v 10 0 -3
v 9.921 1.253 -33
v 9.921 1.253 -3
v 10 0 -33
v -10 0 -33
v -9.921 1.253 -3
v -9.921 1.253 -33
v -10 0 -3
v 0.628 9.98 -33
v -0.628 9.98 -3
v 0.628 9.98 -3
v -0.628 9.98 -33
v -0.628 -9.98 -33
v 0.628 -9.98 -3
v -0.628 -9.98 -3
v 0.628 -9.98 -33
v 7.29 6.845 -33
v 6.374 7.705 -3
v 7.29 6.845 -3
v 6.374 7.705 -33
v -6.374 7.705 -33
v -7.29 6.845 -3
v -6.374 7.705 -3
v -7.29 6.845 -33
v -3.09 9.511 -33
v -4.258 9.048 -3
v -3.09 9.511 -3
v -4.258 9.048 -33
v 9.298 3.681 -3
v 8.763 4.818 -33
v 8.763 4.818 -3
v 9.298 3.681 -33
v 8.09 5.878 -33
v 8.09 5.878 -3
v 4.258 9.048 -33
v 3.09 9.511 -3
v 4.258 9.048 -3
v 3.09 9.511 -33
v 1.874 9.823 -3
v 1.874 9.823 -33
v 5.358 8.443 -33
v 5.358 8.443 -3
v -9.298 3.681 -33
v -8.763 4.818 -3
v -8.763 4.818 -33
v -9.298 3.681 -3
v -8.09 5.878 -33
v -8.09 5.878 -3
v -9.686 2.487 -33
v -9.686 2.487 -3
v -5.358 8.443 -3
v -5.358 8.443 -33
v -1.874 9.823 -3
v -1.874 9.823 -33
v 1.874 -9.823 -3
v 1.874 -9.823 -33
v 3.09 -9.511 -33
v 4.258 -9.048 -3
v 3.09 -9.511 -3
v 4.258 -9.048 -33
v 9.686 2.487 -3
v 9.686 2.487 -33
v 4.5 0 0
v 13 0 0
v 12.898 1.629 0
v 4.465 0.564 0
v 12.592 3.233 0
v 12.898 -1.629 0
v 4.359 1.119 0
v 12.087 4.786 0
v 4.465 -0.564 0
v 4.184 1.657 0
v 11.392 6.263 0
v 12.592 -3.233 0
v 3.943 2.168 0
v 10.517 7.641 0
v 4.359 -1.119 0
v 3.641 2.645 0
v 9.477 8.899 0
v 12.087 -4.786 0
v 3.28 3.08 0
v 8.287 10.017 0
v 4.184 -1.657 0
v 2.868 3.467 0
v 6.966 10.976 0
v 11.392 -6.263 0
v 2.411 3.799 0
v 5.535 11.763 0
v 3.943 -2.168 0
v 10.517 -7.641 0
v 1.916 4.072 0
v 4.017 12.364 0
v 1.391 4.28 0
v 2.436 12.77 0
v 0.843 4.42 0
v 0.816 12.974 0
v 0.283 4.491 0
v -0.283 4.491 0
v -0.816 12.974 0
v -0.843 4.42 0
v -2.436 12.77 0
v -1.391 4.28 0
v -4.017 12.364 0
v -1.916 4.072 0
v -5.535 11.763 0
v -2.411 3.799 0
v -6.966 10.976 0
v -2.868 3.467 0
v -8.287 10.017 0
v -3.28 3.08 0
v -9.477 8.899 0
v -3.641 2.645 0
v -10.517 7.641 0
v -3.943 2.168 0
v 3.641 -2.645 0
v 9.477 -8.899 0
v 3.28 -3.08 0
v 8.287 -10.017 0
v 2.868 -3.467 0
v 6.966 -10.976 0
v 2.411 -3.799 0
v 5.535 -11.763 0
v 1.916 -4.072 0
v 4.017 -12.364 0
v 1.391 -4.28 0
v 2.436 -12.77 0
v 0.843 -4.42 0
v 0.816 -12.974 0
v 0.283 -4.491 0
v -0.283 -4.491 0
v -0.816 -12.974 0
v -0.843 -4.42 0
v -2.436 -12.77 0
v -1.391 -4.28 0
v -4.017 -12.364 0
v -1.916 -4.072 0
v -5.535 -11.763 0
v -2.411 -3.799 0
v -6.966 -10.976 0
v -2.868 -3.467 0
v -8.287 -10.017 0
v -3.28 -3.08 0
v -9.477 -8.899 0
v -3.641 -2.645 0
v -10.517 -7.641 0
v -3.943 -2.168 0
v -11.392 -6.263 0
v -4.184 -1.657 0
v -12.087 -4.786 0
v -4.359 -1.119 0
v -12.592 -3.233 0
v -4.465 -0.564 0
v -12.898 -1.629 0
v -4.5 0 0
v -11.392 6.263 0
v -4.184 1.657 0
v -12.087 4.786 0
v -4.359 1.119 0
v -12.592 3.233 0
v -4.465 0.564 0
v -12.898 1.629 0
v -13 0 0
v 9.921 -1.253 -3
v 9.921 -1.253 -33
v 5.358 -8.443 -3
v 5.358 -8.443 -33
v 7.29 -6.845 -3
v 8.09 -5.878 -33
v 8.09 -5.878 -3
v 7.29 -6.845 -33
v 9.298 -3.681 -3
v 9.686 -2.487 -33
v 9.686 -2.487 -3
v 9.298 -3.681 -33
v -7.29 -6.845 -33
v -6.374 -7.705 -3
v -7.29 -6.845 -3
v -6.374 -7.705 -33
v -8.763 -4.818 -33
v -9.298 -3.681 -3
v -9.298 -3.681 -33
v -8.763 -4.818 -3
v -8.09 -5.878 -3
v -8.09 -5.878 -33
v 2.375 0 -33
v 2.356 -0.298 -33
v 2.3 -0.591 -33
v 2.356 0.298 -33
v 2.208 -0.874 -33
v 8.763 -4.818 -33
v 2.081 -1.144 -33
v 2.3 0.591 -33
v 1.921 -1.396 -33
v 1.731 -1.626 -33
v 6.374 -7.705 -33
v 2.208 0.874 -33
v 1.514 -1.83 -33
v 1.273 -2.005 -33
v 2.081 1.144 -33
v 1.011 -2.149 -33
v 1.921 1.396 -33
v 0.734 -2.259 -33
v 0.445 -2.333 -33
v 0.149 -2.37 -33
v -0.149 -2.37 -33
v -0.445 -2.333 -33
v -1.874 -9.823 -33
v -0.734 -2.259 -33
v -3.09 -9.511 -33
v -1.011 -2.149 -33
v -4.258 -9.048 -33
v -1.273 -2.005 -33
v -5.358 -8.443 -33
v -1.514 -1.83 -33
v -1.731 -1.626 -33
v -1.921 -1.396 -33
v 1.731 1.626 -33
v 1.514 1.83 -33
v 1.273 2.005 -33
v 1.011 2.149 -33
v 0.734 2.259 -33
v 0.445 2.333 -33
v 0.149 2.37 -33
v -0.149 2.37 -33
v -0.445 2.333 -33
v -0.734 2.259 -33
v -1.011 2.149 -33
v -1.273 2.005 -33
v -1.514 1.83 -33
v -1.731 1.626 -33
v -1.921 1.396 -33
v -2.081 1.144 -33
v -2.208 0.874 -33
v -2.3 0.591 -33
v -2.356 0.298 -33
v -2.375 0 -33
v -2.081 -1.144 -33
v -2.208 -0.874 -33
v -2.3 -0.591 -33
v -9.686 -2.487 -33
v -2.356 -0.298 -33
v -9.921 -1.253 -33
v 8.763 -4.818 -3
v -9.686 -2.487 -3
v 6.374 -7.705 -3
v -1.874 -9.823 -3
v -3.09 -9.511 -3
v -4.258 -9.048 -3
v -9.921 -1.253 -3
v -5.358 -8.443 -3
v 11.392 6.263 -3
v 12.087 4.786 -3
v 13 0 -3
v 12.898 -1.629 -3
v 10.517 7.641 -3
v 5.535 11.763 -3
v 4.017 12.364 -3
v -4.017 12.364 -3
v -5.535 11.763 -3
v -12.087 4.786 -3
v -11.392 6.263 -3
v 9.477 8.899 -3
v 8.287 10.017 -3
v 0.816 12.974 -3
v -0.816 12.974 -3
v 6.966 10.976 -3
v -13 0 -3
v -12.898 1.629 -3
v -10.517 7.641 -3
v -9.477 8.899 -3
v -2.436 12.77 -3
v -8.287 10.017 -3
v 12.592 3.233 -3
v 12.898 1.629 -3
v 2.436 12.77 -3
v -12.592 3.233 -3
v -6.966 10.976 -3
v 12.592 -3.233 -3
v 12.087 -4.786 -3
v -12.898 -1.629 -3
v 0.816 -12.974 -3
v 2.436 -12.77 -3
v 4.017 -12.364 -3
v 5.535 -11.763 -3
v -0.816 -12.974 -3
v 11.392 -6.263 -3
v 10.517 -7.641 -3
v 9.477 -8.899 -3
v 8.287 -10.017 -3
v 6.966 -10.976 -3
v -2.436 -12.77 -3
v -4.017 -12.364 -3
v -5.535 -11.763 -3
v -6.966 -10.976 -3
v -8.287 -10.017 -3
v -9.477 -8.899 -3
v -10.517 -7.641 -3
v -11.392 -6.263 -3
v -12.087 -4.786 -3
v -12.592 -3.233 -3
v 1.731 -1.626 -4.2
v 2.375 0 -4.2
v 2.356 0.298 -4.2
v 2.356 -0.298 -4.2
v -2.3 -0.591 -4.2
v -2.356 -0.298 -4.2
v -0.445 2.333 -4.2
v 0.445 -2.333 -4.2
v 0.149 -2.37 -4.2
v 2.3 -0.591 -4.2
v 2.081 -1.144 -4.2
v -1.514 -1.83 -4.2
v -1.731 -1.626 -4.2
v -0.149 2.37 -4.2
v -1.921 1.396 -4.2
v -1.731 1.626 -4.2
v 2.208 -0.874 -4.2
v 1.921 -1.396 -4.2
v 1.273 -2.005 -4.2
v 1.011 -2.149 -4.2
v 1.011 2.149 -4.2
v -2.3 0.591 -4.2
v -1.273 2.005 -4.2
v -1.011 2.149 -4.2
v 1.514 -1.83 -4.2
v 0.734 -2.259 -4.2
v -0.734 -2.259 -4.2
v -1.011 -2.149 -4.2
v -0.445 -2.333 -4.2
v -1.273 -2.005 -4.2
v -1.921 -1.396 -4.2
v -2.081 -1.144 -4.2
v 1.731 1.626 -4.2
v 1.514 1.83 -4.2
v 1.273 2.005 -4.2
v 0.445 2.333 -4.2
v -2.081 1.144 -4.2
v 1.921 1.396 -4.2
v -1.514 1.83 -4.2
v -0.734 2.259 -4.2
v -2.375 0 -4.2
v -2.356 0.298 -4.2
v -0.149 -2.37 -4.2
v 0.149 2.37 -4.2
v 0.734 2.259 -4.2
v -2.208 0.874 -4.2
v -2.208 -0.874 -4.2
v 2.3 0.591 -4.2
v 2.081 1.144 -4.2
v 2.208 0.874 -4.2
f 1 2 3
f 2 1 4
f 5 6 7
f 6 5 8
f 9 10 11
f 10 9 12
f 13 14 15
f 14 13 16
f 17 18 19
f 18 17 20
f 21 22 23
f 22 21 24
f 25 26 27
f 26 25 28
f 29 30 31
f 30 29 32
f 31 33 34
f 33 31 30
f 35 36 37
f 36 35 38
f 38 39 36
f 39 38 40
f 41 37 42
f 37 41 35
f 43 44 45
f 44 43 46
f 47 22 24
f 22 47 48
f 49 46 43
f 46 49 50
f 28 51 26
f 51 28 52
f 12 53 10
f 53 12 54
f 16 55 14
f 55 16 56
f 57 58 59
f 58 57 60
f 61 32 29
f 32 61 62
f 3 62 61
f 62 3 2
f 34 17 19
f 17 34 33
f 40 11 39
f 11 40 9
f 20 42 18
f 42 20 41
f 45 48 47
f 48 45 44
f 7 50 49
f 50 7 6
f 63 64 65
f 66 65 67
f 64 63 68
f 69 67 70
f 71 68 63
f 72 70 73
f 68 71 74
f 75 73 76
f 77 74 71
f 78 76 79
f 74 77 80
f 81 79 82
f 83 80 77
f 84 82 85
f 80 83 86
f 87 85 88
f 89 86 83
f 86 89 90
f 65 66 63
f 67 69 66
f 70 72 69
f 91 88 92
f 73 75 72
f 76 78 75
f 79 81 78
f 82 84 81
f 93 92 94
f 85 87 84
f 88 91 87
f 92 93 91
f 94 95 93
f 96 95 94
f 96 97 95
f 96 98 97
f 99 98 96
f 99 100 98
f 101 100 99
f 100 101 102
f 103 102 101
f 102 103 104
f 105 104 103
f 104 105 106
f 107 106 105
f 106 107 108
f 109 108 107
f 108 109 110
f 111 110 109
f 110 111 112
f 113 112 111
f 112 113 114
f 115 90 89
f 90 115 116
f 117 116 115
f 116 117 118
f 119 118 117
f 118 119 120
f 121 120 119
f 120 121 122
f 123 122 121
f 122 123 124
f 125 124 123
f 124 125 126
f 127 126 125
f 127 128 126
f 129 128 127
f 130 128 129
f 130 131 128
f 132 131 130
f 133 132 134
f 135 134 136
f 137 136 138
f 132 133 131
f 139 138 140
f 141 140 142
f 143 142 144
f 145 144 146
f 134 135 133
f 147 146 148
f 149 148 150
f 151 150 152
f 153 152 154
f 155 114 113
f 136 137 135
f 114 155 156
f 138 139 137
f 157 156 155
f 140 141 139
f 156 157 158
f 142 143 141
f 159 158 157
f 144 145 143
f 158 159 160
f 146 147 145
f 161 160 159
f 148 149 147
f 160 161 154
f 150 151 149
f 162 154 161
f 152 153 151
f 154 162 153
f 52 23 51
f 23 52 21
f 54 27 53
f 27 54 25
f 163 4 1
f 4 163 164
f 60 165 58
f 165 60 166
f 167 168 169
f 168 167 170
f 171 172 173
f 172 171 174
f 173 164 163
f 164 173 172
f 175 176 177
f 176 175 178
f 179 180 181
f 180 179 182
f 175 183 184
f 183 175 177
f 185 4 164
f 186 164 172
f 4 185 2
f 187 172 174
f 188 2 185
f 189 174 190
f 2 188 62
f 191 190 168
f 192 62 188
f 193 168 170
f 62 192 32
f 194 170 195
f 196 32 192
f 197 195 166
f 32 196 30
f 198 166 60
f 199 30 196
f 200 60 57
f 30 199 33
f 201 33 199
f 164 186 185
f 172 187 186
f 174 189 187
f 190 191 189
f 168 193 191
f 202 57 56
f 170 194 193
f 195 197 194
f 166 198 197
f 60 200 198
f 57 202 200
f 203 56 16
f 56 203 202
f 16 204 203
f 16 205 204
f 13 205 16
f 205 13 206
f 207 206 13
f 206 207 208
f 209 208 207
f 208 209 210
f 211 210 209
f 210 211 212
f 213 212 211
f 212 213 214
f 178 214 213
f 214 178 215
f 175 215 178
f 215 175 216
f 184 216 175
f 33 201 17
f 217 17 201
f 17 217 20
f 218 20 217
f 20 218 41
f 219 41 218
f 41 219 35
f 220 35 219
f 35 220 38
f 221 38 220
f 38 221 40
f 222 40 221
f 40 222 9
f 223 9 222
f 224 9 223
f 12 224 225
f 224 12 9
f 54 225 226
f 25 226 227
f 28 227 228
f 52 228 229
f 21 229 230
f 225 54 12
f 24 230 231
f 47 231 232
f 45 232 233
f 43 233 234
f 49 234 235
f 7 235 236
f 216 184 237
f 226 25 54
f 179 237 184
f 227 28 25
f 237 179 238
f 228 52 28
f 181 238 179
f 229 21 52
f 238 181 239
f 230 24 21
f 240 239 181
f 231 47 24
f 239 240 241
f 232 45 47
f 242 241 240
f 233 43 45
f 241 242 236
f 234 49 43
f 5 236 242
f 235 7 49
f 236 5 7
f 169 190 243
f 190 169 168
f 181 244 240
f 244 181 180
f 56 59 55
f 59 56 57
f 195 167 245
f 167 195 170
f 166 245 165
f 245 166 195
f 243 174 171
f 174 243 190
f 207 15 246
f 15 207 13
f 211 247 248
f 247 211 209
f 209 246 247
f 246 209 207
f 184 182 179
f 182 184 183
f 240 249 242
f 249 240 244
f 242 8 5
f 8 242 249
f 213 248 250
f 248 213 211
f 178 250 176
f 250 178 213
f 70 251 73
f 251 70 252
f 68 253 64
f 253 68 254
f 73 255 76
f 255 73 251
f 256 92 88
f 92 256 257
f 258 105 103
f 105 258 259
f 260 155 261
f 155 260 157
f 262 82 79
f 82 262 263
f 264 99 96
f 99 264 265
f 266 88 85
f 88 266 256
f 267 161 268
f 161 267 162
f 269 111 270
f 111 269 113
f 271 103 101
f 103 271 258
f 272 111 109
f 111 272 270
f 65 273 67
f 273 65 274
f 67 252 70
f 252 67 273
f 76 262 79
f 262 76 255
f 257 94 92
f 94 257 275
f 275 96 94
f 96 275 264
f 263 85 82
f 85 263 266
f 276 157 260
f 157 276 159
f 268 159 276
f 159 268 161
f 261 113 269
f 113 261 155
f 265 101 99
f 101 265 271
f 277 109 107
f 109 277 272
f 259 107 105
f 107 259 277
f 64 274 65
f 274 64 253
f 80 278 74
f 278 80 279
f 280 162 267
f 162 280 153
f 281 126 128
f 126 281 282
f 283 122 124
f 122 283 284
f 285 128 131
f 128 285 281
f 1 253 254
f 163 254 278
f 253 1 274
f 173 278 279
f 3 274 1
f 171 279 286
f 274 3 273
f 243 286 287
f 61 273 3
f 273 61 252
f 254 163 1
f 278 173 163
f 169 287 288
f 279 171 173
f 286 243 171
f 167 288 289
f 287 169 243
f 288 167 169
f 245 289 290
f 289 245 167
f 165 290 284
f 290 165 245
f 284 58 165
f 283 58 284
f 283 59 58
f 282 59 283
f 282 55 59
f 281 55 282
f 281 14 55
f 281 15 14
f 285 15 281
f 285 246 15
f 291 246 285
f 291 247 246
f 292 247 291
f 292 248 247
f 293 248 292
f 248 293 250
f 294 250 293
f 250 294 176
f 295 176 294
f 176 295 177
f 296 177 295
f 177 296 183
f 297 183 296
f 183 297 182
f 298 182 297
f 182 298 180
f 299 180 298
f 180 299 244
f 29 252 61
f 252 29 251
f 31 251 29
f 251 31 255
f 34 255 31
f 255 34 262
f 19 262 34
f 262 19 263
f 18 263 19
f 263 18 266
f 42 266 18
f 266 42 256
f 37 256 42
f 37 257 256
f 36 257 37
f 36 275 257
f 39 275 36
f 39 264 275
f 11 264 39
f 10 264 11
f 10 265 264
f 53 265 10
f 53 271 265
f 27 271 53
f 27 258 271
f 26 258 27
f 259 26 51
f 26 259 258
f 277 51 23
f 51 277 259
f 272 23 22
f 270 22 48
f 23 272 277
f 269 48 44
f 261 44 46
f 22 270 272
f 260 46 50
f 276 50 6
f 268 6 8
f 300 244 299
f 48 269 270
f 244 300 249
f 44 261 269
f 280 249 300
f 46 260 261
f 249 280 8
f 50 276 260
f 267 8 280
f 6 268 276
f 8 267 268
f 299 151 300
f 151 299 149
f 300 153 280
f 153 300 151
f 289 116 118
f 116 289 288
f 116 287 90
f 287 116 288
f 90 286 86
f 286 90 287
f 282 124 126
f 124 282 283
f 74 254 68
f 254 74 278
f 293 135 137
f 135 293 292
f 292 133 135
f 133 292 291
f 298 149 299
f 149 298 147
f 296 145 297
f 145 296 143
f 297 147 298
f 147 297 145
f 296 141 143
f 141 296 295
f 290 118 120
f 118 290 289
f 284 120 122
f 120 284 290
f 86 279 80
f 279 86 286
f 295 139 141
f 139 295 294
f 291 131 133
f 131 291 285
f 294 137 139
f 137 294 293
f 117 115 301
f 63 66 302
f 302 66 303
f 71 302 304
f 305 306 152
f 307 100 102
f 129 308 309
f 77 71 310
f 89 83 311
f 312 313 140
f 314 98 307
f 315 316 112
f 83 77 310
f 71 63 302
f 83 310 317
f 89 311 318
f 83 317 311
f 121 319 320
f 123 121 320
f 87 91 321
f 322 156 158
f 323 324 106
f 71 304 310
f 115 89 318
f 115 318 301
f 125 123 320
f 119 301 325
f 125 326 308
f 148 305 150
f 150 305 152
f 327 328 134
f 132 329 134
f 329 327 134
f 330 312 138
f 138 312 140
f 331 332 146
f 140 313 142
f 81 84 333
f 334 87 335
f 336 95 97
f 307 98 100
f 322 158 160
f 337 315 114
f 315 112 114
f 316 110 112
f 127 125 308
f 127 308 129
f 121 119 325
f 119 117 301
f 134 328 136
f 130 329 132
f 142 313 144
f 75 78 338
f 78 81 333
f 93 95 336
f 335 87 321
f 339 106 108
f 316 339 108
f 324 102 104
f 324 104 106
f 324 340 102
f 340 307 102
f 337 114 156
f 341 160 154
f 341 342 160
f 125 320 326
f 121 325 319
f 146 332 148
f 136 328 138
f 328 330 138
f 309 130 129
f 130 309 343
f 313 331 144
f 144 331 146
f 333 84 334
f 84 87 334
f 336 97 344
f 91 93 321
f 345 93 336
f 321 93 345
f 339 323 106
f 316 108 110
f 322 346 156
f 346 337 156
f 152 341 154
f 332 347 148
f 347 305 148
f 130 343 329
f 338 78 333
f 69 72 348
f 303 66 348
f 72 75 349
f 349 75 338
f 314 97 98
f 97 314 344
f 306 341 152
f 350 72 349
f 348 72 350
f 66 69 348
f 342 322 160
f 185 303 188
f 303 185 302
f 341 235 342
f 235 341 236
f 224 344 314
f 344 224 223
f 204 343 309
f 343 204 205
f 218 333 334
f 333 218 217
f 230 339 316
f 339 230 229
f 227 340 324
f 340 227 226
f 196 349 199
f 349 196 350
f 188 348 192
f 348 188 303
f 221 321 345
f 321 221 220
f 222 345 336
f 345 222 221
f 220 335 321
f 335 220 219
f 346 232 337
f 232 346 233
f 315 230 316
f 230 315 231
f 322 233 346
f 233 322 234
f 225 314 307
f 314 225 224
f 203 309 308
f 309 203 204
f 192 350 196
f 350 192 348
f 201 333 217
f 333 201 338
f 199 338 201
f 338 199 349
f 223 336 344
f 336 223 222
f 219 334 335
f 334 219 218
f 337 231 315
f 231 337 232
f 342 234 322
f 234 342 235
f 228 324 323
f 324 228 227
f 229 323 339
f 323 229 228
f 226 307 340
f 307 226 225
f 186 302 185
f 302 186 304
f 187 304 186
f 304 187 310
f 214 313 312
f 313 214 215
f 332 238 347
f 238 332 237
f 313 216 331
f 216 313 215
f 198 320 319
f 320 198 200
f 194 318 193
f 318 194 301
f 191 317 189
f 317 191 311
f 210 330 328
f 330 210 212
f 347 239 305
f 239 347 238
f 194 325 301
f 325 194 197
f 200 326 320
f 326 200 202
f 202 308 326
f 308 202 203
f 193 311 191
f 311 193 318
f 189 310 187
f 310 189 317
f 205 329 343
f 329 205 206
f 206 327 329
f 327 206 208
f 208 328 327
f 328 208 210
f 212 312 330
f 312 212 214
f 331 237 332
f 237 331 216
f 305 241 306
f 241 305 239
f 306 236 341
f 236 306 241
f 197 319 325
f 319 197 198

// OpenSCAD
$fn = 50;


difference() {
	union() {
		translate(v = [0, 0, -33.0000000000]) {
			cylinder(h = 33, r = 10.0000000000);
		}
		translate(v = [0, 0, -3.0000000000]) {
			cylinder(h = 3, r = 13.0000000000);
		}
	}
	union() {
		translate(v = [0, 0, 0]) {
			rotate(a = [0, 0, 0]) {
				difference() {
					union() {
						#translate(v = [0, 0, -33.0000000000]) {
							cylinder(h = 33, r = 2.2500000000);
						}
						#translate(v = [0, 0, -4.2000000000]) {
							cylinder(h = 4.2000000000, r1 = 2.3750000000, r2 = 4.5000000000);
						}
						#translate(v = [0, 0, -33.0000000000]) {
							cylinder(h = 33, r = 2.3750000000);
						}
						#translate(v = [0, 0, -33.0000000000]) {
							cylinder(h = 33, r = 2.2500000000);
						}
					}
					union();
				}
			}
		}
	}
}
